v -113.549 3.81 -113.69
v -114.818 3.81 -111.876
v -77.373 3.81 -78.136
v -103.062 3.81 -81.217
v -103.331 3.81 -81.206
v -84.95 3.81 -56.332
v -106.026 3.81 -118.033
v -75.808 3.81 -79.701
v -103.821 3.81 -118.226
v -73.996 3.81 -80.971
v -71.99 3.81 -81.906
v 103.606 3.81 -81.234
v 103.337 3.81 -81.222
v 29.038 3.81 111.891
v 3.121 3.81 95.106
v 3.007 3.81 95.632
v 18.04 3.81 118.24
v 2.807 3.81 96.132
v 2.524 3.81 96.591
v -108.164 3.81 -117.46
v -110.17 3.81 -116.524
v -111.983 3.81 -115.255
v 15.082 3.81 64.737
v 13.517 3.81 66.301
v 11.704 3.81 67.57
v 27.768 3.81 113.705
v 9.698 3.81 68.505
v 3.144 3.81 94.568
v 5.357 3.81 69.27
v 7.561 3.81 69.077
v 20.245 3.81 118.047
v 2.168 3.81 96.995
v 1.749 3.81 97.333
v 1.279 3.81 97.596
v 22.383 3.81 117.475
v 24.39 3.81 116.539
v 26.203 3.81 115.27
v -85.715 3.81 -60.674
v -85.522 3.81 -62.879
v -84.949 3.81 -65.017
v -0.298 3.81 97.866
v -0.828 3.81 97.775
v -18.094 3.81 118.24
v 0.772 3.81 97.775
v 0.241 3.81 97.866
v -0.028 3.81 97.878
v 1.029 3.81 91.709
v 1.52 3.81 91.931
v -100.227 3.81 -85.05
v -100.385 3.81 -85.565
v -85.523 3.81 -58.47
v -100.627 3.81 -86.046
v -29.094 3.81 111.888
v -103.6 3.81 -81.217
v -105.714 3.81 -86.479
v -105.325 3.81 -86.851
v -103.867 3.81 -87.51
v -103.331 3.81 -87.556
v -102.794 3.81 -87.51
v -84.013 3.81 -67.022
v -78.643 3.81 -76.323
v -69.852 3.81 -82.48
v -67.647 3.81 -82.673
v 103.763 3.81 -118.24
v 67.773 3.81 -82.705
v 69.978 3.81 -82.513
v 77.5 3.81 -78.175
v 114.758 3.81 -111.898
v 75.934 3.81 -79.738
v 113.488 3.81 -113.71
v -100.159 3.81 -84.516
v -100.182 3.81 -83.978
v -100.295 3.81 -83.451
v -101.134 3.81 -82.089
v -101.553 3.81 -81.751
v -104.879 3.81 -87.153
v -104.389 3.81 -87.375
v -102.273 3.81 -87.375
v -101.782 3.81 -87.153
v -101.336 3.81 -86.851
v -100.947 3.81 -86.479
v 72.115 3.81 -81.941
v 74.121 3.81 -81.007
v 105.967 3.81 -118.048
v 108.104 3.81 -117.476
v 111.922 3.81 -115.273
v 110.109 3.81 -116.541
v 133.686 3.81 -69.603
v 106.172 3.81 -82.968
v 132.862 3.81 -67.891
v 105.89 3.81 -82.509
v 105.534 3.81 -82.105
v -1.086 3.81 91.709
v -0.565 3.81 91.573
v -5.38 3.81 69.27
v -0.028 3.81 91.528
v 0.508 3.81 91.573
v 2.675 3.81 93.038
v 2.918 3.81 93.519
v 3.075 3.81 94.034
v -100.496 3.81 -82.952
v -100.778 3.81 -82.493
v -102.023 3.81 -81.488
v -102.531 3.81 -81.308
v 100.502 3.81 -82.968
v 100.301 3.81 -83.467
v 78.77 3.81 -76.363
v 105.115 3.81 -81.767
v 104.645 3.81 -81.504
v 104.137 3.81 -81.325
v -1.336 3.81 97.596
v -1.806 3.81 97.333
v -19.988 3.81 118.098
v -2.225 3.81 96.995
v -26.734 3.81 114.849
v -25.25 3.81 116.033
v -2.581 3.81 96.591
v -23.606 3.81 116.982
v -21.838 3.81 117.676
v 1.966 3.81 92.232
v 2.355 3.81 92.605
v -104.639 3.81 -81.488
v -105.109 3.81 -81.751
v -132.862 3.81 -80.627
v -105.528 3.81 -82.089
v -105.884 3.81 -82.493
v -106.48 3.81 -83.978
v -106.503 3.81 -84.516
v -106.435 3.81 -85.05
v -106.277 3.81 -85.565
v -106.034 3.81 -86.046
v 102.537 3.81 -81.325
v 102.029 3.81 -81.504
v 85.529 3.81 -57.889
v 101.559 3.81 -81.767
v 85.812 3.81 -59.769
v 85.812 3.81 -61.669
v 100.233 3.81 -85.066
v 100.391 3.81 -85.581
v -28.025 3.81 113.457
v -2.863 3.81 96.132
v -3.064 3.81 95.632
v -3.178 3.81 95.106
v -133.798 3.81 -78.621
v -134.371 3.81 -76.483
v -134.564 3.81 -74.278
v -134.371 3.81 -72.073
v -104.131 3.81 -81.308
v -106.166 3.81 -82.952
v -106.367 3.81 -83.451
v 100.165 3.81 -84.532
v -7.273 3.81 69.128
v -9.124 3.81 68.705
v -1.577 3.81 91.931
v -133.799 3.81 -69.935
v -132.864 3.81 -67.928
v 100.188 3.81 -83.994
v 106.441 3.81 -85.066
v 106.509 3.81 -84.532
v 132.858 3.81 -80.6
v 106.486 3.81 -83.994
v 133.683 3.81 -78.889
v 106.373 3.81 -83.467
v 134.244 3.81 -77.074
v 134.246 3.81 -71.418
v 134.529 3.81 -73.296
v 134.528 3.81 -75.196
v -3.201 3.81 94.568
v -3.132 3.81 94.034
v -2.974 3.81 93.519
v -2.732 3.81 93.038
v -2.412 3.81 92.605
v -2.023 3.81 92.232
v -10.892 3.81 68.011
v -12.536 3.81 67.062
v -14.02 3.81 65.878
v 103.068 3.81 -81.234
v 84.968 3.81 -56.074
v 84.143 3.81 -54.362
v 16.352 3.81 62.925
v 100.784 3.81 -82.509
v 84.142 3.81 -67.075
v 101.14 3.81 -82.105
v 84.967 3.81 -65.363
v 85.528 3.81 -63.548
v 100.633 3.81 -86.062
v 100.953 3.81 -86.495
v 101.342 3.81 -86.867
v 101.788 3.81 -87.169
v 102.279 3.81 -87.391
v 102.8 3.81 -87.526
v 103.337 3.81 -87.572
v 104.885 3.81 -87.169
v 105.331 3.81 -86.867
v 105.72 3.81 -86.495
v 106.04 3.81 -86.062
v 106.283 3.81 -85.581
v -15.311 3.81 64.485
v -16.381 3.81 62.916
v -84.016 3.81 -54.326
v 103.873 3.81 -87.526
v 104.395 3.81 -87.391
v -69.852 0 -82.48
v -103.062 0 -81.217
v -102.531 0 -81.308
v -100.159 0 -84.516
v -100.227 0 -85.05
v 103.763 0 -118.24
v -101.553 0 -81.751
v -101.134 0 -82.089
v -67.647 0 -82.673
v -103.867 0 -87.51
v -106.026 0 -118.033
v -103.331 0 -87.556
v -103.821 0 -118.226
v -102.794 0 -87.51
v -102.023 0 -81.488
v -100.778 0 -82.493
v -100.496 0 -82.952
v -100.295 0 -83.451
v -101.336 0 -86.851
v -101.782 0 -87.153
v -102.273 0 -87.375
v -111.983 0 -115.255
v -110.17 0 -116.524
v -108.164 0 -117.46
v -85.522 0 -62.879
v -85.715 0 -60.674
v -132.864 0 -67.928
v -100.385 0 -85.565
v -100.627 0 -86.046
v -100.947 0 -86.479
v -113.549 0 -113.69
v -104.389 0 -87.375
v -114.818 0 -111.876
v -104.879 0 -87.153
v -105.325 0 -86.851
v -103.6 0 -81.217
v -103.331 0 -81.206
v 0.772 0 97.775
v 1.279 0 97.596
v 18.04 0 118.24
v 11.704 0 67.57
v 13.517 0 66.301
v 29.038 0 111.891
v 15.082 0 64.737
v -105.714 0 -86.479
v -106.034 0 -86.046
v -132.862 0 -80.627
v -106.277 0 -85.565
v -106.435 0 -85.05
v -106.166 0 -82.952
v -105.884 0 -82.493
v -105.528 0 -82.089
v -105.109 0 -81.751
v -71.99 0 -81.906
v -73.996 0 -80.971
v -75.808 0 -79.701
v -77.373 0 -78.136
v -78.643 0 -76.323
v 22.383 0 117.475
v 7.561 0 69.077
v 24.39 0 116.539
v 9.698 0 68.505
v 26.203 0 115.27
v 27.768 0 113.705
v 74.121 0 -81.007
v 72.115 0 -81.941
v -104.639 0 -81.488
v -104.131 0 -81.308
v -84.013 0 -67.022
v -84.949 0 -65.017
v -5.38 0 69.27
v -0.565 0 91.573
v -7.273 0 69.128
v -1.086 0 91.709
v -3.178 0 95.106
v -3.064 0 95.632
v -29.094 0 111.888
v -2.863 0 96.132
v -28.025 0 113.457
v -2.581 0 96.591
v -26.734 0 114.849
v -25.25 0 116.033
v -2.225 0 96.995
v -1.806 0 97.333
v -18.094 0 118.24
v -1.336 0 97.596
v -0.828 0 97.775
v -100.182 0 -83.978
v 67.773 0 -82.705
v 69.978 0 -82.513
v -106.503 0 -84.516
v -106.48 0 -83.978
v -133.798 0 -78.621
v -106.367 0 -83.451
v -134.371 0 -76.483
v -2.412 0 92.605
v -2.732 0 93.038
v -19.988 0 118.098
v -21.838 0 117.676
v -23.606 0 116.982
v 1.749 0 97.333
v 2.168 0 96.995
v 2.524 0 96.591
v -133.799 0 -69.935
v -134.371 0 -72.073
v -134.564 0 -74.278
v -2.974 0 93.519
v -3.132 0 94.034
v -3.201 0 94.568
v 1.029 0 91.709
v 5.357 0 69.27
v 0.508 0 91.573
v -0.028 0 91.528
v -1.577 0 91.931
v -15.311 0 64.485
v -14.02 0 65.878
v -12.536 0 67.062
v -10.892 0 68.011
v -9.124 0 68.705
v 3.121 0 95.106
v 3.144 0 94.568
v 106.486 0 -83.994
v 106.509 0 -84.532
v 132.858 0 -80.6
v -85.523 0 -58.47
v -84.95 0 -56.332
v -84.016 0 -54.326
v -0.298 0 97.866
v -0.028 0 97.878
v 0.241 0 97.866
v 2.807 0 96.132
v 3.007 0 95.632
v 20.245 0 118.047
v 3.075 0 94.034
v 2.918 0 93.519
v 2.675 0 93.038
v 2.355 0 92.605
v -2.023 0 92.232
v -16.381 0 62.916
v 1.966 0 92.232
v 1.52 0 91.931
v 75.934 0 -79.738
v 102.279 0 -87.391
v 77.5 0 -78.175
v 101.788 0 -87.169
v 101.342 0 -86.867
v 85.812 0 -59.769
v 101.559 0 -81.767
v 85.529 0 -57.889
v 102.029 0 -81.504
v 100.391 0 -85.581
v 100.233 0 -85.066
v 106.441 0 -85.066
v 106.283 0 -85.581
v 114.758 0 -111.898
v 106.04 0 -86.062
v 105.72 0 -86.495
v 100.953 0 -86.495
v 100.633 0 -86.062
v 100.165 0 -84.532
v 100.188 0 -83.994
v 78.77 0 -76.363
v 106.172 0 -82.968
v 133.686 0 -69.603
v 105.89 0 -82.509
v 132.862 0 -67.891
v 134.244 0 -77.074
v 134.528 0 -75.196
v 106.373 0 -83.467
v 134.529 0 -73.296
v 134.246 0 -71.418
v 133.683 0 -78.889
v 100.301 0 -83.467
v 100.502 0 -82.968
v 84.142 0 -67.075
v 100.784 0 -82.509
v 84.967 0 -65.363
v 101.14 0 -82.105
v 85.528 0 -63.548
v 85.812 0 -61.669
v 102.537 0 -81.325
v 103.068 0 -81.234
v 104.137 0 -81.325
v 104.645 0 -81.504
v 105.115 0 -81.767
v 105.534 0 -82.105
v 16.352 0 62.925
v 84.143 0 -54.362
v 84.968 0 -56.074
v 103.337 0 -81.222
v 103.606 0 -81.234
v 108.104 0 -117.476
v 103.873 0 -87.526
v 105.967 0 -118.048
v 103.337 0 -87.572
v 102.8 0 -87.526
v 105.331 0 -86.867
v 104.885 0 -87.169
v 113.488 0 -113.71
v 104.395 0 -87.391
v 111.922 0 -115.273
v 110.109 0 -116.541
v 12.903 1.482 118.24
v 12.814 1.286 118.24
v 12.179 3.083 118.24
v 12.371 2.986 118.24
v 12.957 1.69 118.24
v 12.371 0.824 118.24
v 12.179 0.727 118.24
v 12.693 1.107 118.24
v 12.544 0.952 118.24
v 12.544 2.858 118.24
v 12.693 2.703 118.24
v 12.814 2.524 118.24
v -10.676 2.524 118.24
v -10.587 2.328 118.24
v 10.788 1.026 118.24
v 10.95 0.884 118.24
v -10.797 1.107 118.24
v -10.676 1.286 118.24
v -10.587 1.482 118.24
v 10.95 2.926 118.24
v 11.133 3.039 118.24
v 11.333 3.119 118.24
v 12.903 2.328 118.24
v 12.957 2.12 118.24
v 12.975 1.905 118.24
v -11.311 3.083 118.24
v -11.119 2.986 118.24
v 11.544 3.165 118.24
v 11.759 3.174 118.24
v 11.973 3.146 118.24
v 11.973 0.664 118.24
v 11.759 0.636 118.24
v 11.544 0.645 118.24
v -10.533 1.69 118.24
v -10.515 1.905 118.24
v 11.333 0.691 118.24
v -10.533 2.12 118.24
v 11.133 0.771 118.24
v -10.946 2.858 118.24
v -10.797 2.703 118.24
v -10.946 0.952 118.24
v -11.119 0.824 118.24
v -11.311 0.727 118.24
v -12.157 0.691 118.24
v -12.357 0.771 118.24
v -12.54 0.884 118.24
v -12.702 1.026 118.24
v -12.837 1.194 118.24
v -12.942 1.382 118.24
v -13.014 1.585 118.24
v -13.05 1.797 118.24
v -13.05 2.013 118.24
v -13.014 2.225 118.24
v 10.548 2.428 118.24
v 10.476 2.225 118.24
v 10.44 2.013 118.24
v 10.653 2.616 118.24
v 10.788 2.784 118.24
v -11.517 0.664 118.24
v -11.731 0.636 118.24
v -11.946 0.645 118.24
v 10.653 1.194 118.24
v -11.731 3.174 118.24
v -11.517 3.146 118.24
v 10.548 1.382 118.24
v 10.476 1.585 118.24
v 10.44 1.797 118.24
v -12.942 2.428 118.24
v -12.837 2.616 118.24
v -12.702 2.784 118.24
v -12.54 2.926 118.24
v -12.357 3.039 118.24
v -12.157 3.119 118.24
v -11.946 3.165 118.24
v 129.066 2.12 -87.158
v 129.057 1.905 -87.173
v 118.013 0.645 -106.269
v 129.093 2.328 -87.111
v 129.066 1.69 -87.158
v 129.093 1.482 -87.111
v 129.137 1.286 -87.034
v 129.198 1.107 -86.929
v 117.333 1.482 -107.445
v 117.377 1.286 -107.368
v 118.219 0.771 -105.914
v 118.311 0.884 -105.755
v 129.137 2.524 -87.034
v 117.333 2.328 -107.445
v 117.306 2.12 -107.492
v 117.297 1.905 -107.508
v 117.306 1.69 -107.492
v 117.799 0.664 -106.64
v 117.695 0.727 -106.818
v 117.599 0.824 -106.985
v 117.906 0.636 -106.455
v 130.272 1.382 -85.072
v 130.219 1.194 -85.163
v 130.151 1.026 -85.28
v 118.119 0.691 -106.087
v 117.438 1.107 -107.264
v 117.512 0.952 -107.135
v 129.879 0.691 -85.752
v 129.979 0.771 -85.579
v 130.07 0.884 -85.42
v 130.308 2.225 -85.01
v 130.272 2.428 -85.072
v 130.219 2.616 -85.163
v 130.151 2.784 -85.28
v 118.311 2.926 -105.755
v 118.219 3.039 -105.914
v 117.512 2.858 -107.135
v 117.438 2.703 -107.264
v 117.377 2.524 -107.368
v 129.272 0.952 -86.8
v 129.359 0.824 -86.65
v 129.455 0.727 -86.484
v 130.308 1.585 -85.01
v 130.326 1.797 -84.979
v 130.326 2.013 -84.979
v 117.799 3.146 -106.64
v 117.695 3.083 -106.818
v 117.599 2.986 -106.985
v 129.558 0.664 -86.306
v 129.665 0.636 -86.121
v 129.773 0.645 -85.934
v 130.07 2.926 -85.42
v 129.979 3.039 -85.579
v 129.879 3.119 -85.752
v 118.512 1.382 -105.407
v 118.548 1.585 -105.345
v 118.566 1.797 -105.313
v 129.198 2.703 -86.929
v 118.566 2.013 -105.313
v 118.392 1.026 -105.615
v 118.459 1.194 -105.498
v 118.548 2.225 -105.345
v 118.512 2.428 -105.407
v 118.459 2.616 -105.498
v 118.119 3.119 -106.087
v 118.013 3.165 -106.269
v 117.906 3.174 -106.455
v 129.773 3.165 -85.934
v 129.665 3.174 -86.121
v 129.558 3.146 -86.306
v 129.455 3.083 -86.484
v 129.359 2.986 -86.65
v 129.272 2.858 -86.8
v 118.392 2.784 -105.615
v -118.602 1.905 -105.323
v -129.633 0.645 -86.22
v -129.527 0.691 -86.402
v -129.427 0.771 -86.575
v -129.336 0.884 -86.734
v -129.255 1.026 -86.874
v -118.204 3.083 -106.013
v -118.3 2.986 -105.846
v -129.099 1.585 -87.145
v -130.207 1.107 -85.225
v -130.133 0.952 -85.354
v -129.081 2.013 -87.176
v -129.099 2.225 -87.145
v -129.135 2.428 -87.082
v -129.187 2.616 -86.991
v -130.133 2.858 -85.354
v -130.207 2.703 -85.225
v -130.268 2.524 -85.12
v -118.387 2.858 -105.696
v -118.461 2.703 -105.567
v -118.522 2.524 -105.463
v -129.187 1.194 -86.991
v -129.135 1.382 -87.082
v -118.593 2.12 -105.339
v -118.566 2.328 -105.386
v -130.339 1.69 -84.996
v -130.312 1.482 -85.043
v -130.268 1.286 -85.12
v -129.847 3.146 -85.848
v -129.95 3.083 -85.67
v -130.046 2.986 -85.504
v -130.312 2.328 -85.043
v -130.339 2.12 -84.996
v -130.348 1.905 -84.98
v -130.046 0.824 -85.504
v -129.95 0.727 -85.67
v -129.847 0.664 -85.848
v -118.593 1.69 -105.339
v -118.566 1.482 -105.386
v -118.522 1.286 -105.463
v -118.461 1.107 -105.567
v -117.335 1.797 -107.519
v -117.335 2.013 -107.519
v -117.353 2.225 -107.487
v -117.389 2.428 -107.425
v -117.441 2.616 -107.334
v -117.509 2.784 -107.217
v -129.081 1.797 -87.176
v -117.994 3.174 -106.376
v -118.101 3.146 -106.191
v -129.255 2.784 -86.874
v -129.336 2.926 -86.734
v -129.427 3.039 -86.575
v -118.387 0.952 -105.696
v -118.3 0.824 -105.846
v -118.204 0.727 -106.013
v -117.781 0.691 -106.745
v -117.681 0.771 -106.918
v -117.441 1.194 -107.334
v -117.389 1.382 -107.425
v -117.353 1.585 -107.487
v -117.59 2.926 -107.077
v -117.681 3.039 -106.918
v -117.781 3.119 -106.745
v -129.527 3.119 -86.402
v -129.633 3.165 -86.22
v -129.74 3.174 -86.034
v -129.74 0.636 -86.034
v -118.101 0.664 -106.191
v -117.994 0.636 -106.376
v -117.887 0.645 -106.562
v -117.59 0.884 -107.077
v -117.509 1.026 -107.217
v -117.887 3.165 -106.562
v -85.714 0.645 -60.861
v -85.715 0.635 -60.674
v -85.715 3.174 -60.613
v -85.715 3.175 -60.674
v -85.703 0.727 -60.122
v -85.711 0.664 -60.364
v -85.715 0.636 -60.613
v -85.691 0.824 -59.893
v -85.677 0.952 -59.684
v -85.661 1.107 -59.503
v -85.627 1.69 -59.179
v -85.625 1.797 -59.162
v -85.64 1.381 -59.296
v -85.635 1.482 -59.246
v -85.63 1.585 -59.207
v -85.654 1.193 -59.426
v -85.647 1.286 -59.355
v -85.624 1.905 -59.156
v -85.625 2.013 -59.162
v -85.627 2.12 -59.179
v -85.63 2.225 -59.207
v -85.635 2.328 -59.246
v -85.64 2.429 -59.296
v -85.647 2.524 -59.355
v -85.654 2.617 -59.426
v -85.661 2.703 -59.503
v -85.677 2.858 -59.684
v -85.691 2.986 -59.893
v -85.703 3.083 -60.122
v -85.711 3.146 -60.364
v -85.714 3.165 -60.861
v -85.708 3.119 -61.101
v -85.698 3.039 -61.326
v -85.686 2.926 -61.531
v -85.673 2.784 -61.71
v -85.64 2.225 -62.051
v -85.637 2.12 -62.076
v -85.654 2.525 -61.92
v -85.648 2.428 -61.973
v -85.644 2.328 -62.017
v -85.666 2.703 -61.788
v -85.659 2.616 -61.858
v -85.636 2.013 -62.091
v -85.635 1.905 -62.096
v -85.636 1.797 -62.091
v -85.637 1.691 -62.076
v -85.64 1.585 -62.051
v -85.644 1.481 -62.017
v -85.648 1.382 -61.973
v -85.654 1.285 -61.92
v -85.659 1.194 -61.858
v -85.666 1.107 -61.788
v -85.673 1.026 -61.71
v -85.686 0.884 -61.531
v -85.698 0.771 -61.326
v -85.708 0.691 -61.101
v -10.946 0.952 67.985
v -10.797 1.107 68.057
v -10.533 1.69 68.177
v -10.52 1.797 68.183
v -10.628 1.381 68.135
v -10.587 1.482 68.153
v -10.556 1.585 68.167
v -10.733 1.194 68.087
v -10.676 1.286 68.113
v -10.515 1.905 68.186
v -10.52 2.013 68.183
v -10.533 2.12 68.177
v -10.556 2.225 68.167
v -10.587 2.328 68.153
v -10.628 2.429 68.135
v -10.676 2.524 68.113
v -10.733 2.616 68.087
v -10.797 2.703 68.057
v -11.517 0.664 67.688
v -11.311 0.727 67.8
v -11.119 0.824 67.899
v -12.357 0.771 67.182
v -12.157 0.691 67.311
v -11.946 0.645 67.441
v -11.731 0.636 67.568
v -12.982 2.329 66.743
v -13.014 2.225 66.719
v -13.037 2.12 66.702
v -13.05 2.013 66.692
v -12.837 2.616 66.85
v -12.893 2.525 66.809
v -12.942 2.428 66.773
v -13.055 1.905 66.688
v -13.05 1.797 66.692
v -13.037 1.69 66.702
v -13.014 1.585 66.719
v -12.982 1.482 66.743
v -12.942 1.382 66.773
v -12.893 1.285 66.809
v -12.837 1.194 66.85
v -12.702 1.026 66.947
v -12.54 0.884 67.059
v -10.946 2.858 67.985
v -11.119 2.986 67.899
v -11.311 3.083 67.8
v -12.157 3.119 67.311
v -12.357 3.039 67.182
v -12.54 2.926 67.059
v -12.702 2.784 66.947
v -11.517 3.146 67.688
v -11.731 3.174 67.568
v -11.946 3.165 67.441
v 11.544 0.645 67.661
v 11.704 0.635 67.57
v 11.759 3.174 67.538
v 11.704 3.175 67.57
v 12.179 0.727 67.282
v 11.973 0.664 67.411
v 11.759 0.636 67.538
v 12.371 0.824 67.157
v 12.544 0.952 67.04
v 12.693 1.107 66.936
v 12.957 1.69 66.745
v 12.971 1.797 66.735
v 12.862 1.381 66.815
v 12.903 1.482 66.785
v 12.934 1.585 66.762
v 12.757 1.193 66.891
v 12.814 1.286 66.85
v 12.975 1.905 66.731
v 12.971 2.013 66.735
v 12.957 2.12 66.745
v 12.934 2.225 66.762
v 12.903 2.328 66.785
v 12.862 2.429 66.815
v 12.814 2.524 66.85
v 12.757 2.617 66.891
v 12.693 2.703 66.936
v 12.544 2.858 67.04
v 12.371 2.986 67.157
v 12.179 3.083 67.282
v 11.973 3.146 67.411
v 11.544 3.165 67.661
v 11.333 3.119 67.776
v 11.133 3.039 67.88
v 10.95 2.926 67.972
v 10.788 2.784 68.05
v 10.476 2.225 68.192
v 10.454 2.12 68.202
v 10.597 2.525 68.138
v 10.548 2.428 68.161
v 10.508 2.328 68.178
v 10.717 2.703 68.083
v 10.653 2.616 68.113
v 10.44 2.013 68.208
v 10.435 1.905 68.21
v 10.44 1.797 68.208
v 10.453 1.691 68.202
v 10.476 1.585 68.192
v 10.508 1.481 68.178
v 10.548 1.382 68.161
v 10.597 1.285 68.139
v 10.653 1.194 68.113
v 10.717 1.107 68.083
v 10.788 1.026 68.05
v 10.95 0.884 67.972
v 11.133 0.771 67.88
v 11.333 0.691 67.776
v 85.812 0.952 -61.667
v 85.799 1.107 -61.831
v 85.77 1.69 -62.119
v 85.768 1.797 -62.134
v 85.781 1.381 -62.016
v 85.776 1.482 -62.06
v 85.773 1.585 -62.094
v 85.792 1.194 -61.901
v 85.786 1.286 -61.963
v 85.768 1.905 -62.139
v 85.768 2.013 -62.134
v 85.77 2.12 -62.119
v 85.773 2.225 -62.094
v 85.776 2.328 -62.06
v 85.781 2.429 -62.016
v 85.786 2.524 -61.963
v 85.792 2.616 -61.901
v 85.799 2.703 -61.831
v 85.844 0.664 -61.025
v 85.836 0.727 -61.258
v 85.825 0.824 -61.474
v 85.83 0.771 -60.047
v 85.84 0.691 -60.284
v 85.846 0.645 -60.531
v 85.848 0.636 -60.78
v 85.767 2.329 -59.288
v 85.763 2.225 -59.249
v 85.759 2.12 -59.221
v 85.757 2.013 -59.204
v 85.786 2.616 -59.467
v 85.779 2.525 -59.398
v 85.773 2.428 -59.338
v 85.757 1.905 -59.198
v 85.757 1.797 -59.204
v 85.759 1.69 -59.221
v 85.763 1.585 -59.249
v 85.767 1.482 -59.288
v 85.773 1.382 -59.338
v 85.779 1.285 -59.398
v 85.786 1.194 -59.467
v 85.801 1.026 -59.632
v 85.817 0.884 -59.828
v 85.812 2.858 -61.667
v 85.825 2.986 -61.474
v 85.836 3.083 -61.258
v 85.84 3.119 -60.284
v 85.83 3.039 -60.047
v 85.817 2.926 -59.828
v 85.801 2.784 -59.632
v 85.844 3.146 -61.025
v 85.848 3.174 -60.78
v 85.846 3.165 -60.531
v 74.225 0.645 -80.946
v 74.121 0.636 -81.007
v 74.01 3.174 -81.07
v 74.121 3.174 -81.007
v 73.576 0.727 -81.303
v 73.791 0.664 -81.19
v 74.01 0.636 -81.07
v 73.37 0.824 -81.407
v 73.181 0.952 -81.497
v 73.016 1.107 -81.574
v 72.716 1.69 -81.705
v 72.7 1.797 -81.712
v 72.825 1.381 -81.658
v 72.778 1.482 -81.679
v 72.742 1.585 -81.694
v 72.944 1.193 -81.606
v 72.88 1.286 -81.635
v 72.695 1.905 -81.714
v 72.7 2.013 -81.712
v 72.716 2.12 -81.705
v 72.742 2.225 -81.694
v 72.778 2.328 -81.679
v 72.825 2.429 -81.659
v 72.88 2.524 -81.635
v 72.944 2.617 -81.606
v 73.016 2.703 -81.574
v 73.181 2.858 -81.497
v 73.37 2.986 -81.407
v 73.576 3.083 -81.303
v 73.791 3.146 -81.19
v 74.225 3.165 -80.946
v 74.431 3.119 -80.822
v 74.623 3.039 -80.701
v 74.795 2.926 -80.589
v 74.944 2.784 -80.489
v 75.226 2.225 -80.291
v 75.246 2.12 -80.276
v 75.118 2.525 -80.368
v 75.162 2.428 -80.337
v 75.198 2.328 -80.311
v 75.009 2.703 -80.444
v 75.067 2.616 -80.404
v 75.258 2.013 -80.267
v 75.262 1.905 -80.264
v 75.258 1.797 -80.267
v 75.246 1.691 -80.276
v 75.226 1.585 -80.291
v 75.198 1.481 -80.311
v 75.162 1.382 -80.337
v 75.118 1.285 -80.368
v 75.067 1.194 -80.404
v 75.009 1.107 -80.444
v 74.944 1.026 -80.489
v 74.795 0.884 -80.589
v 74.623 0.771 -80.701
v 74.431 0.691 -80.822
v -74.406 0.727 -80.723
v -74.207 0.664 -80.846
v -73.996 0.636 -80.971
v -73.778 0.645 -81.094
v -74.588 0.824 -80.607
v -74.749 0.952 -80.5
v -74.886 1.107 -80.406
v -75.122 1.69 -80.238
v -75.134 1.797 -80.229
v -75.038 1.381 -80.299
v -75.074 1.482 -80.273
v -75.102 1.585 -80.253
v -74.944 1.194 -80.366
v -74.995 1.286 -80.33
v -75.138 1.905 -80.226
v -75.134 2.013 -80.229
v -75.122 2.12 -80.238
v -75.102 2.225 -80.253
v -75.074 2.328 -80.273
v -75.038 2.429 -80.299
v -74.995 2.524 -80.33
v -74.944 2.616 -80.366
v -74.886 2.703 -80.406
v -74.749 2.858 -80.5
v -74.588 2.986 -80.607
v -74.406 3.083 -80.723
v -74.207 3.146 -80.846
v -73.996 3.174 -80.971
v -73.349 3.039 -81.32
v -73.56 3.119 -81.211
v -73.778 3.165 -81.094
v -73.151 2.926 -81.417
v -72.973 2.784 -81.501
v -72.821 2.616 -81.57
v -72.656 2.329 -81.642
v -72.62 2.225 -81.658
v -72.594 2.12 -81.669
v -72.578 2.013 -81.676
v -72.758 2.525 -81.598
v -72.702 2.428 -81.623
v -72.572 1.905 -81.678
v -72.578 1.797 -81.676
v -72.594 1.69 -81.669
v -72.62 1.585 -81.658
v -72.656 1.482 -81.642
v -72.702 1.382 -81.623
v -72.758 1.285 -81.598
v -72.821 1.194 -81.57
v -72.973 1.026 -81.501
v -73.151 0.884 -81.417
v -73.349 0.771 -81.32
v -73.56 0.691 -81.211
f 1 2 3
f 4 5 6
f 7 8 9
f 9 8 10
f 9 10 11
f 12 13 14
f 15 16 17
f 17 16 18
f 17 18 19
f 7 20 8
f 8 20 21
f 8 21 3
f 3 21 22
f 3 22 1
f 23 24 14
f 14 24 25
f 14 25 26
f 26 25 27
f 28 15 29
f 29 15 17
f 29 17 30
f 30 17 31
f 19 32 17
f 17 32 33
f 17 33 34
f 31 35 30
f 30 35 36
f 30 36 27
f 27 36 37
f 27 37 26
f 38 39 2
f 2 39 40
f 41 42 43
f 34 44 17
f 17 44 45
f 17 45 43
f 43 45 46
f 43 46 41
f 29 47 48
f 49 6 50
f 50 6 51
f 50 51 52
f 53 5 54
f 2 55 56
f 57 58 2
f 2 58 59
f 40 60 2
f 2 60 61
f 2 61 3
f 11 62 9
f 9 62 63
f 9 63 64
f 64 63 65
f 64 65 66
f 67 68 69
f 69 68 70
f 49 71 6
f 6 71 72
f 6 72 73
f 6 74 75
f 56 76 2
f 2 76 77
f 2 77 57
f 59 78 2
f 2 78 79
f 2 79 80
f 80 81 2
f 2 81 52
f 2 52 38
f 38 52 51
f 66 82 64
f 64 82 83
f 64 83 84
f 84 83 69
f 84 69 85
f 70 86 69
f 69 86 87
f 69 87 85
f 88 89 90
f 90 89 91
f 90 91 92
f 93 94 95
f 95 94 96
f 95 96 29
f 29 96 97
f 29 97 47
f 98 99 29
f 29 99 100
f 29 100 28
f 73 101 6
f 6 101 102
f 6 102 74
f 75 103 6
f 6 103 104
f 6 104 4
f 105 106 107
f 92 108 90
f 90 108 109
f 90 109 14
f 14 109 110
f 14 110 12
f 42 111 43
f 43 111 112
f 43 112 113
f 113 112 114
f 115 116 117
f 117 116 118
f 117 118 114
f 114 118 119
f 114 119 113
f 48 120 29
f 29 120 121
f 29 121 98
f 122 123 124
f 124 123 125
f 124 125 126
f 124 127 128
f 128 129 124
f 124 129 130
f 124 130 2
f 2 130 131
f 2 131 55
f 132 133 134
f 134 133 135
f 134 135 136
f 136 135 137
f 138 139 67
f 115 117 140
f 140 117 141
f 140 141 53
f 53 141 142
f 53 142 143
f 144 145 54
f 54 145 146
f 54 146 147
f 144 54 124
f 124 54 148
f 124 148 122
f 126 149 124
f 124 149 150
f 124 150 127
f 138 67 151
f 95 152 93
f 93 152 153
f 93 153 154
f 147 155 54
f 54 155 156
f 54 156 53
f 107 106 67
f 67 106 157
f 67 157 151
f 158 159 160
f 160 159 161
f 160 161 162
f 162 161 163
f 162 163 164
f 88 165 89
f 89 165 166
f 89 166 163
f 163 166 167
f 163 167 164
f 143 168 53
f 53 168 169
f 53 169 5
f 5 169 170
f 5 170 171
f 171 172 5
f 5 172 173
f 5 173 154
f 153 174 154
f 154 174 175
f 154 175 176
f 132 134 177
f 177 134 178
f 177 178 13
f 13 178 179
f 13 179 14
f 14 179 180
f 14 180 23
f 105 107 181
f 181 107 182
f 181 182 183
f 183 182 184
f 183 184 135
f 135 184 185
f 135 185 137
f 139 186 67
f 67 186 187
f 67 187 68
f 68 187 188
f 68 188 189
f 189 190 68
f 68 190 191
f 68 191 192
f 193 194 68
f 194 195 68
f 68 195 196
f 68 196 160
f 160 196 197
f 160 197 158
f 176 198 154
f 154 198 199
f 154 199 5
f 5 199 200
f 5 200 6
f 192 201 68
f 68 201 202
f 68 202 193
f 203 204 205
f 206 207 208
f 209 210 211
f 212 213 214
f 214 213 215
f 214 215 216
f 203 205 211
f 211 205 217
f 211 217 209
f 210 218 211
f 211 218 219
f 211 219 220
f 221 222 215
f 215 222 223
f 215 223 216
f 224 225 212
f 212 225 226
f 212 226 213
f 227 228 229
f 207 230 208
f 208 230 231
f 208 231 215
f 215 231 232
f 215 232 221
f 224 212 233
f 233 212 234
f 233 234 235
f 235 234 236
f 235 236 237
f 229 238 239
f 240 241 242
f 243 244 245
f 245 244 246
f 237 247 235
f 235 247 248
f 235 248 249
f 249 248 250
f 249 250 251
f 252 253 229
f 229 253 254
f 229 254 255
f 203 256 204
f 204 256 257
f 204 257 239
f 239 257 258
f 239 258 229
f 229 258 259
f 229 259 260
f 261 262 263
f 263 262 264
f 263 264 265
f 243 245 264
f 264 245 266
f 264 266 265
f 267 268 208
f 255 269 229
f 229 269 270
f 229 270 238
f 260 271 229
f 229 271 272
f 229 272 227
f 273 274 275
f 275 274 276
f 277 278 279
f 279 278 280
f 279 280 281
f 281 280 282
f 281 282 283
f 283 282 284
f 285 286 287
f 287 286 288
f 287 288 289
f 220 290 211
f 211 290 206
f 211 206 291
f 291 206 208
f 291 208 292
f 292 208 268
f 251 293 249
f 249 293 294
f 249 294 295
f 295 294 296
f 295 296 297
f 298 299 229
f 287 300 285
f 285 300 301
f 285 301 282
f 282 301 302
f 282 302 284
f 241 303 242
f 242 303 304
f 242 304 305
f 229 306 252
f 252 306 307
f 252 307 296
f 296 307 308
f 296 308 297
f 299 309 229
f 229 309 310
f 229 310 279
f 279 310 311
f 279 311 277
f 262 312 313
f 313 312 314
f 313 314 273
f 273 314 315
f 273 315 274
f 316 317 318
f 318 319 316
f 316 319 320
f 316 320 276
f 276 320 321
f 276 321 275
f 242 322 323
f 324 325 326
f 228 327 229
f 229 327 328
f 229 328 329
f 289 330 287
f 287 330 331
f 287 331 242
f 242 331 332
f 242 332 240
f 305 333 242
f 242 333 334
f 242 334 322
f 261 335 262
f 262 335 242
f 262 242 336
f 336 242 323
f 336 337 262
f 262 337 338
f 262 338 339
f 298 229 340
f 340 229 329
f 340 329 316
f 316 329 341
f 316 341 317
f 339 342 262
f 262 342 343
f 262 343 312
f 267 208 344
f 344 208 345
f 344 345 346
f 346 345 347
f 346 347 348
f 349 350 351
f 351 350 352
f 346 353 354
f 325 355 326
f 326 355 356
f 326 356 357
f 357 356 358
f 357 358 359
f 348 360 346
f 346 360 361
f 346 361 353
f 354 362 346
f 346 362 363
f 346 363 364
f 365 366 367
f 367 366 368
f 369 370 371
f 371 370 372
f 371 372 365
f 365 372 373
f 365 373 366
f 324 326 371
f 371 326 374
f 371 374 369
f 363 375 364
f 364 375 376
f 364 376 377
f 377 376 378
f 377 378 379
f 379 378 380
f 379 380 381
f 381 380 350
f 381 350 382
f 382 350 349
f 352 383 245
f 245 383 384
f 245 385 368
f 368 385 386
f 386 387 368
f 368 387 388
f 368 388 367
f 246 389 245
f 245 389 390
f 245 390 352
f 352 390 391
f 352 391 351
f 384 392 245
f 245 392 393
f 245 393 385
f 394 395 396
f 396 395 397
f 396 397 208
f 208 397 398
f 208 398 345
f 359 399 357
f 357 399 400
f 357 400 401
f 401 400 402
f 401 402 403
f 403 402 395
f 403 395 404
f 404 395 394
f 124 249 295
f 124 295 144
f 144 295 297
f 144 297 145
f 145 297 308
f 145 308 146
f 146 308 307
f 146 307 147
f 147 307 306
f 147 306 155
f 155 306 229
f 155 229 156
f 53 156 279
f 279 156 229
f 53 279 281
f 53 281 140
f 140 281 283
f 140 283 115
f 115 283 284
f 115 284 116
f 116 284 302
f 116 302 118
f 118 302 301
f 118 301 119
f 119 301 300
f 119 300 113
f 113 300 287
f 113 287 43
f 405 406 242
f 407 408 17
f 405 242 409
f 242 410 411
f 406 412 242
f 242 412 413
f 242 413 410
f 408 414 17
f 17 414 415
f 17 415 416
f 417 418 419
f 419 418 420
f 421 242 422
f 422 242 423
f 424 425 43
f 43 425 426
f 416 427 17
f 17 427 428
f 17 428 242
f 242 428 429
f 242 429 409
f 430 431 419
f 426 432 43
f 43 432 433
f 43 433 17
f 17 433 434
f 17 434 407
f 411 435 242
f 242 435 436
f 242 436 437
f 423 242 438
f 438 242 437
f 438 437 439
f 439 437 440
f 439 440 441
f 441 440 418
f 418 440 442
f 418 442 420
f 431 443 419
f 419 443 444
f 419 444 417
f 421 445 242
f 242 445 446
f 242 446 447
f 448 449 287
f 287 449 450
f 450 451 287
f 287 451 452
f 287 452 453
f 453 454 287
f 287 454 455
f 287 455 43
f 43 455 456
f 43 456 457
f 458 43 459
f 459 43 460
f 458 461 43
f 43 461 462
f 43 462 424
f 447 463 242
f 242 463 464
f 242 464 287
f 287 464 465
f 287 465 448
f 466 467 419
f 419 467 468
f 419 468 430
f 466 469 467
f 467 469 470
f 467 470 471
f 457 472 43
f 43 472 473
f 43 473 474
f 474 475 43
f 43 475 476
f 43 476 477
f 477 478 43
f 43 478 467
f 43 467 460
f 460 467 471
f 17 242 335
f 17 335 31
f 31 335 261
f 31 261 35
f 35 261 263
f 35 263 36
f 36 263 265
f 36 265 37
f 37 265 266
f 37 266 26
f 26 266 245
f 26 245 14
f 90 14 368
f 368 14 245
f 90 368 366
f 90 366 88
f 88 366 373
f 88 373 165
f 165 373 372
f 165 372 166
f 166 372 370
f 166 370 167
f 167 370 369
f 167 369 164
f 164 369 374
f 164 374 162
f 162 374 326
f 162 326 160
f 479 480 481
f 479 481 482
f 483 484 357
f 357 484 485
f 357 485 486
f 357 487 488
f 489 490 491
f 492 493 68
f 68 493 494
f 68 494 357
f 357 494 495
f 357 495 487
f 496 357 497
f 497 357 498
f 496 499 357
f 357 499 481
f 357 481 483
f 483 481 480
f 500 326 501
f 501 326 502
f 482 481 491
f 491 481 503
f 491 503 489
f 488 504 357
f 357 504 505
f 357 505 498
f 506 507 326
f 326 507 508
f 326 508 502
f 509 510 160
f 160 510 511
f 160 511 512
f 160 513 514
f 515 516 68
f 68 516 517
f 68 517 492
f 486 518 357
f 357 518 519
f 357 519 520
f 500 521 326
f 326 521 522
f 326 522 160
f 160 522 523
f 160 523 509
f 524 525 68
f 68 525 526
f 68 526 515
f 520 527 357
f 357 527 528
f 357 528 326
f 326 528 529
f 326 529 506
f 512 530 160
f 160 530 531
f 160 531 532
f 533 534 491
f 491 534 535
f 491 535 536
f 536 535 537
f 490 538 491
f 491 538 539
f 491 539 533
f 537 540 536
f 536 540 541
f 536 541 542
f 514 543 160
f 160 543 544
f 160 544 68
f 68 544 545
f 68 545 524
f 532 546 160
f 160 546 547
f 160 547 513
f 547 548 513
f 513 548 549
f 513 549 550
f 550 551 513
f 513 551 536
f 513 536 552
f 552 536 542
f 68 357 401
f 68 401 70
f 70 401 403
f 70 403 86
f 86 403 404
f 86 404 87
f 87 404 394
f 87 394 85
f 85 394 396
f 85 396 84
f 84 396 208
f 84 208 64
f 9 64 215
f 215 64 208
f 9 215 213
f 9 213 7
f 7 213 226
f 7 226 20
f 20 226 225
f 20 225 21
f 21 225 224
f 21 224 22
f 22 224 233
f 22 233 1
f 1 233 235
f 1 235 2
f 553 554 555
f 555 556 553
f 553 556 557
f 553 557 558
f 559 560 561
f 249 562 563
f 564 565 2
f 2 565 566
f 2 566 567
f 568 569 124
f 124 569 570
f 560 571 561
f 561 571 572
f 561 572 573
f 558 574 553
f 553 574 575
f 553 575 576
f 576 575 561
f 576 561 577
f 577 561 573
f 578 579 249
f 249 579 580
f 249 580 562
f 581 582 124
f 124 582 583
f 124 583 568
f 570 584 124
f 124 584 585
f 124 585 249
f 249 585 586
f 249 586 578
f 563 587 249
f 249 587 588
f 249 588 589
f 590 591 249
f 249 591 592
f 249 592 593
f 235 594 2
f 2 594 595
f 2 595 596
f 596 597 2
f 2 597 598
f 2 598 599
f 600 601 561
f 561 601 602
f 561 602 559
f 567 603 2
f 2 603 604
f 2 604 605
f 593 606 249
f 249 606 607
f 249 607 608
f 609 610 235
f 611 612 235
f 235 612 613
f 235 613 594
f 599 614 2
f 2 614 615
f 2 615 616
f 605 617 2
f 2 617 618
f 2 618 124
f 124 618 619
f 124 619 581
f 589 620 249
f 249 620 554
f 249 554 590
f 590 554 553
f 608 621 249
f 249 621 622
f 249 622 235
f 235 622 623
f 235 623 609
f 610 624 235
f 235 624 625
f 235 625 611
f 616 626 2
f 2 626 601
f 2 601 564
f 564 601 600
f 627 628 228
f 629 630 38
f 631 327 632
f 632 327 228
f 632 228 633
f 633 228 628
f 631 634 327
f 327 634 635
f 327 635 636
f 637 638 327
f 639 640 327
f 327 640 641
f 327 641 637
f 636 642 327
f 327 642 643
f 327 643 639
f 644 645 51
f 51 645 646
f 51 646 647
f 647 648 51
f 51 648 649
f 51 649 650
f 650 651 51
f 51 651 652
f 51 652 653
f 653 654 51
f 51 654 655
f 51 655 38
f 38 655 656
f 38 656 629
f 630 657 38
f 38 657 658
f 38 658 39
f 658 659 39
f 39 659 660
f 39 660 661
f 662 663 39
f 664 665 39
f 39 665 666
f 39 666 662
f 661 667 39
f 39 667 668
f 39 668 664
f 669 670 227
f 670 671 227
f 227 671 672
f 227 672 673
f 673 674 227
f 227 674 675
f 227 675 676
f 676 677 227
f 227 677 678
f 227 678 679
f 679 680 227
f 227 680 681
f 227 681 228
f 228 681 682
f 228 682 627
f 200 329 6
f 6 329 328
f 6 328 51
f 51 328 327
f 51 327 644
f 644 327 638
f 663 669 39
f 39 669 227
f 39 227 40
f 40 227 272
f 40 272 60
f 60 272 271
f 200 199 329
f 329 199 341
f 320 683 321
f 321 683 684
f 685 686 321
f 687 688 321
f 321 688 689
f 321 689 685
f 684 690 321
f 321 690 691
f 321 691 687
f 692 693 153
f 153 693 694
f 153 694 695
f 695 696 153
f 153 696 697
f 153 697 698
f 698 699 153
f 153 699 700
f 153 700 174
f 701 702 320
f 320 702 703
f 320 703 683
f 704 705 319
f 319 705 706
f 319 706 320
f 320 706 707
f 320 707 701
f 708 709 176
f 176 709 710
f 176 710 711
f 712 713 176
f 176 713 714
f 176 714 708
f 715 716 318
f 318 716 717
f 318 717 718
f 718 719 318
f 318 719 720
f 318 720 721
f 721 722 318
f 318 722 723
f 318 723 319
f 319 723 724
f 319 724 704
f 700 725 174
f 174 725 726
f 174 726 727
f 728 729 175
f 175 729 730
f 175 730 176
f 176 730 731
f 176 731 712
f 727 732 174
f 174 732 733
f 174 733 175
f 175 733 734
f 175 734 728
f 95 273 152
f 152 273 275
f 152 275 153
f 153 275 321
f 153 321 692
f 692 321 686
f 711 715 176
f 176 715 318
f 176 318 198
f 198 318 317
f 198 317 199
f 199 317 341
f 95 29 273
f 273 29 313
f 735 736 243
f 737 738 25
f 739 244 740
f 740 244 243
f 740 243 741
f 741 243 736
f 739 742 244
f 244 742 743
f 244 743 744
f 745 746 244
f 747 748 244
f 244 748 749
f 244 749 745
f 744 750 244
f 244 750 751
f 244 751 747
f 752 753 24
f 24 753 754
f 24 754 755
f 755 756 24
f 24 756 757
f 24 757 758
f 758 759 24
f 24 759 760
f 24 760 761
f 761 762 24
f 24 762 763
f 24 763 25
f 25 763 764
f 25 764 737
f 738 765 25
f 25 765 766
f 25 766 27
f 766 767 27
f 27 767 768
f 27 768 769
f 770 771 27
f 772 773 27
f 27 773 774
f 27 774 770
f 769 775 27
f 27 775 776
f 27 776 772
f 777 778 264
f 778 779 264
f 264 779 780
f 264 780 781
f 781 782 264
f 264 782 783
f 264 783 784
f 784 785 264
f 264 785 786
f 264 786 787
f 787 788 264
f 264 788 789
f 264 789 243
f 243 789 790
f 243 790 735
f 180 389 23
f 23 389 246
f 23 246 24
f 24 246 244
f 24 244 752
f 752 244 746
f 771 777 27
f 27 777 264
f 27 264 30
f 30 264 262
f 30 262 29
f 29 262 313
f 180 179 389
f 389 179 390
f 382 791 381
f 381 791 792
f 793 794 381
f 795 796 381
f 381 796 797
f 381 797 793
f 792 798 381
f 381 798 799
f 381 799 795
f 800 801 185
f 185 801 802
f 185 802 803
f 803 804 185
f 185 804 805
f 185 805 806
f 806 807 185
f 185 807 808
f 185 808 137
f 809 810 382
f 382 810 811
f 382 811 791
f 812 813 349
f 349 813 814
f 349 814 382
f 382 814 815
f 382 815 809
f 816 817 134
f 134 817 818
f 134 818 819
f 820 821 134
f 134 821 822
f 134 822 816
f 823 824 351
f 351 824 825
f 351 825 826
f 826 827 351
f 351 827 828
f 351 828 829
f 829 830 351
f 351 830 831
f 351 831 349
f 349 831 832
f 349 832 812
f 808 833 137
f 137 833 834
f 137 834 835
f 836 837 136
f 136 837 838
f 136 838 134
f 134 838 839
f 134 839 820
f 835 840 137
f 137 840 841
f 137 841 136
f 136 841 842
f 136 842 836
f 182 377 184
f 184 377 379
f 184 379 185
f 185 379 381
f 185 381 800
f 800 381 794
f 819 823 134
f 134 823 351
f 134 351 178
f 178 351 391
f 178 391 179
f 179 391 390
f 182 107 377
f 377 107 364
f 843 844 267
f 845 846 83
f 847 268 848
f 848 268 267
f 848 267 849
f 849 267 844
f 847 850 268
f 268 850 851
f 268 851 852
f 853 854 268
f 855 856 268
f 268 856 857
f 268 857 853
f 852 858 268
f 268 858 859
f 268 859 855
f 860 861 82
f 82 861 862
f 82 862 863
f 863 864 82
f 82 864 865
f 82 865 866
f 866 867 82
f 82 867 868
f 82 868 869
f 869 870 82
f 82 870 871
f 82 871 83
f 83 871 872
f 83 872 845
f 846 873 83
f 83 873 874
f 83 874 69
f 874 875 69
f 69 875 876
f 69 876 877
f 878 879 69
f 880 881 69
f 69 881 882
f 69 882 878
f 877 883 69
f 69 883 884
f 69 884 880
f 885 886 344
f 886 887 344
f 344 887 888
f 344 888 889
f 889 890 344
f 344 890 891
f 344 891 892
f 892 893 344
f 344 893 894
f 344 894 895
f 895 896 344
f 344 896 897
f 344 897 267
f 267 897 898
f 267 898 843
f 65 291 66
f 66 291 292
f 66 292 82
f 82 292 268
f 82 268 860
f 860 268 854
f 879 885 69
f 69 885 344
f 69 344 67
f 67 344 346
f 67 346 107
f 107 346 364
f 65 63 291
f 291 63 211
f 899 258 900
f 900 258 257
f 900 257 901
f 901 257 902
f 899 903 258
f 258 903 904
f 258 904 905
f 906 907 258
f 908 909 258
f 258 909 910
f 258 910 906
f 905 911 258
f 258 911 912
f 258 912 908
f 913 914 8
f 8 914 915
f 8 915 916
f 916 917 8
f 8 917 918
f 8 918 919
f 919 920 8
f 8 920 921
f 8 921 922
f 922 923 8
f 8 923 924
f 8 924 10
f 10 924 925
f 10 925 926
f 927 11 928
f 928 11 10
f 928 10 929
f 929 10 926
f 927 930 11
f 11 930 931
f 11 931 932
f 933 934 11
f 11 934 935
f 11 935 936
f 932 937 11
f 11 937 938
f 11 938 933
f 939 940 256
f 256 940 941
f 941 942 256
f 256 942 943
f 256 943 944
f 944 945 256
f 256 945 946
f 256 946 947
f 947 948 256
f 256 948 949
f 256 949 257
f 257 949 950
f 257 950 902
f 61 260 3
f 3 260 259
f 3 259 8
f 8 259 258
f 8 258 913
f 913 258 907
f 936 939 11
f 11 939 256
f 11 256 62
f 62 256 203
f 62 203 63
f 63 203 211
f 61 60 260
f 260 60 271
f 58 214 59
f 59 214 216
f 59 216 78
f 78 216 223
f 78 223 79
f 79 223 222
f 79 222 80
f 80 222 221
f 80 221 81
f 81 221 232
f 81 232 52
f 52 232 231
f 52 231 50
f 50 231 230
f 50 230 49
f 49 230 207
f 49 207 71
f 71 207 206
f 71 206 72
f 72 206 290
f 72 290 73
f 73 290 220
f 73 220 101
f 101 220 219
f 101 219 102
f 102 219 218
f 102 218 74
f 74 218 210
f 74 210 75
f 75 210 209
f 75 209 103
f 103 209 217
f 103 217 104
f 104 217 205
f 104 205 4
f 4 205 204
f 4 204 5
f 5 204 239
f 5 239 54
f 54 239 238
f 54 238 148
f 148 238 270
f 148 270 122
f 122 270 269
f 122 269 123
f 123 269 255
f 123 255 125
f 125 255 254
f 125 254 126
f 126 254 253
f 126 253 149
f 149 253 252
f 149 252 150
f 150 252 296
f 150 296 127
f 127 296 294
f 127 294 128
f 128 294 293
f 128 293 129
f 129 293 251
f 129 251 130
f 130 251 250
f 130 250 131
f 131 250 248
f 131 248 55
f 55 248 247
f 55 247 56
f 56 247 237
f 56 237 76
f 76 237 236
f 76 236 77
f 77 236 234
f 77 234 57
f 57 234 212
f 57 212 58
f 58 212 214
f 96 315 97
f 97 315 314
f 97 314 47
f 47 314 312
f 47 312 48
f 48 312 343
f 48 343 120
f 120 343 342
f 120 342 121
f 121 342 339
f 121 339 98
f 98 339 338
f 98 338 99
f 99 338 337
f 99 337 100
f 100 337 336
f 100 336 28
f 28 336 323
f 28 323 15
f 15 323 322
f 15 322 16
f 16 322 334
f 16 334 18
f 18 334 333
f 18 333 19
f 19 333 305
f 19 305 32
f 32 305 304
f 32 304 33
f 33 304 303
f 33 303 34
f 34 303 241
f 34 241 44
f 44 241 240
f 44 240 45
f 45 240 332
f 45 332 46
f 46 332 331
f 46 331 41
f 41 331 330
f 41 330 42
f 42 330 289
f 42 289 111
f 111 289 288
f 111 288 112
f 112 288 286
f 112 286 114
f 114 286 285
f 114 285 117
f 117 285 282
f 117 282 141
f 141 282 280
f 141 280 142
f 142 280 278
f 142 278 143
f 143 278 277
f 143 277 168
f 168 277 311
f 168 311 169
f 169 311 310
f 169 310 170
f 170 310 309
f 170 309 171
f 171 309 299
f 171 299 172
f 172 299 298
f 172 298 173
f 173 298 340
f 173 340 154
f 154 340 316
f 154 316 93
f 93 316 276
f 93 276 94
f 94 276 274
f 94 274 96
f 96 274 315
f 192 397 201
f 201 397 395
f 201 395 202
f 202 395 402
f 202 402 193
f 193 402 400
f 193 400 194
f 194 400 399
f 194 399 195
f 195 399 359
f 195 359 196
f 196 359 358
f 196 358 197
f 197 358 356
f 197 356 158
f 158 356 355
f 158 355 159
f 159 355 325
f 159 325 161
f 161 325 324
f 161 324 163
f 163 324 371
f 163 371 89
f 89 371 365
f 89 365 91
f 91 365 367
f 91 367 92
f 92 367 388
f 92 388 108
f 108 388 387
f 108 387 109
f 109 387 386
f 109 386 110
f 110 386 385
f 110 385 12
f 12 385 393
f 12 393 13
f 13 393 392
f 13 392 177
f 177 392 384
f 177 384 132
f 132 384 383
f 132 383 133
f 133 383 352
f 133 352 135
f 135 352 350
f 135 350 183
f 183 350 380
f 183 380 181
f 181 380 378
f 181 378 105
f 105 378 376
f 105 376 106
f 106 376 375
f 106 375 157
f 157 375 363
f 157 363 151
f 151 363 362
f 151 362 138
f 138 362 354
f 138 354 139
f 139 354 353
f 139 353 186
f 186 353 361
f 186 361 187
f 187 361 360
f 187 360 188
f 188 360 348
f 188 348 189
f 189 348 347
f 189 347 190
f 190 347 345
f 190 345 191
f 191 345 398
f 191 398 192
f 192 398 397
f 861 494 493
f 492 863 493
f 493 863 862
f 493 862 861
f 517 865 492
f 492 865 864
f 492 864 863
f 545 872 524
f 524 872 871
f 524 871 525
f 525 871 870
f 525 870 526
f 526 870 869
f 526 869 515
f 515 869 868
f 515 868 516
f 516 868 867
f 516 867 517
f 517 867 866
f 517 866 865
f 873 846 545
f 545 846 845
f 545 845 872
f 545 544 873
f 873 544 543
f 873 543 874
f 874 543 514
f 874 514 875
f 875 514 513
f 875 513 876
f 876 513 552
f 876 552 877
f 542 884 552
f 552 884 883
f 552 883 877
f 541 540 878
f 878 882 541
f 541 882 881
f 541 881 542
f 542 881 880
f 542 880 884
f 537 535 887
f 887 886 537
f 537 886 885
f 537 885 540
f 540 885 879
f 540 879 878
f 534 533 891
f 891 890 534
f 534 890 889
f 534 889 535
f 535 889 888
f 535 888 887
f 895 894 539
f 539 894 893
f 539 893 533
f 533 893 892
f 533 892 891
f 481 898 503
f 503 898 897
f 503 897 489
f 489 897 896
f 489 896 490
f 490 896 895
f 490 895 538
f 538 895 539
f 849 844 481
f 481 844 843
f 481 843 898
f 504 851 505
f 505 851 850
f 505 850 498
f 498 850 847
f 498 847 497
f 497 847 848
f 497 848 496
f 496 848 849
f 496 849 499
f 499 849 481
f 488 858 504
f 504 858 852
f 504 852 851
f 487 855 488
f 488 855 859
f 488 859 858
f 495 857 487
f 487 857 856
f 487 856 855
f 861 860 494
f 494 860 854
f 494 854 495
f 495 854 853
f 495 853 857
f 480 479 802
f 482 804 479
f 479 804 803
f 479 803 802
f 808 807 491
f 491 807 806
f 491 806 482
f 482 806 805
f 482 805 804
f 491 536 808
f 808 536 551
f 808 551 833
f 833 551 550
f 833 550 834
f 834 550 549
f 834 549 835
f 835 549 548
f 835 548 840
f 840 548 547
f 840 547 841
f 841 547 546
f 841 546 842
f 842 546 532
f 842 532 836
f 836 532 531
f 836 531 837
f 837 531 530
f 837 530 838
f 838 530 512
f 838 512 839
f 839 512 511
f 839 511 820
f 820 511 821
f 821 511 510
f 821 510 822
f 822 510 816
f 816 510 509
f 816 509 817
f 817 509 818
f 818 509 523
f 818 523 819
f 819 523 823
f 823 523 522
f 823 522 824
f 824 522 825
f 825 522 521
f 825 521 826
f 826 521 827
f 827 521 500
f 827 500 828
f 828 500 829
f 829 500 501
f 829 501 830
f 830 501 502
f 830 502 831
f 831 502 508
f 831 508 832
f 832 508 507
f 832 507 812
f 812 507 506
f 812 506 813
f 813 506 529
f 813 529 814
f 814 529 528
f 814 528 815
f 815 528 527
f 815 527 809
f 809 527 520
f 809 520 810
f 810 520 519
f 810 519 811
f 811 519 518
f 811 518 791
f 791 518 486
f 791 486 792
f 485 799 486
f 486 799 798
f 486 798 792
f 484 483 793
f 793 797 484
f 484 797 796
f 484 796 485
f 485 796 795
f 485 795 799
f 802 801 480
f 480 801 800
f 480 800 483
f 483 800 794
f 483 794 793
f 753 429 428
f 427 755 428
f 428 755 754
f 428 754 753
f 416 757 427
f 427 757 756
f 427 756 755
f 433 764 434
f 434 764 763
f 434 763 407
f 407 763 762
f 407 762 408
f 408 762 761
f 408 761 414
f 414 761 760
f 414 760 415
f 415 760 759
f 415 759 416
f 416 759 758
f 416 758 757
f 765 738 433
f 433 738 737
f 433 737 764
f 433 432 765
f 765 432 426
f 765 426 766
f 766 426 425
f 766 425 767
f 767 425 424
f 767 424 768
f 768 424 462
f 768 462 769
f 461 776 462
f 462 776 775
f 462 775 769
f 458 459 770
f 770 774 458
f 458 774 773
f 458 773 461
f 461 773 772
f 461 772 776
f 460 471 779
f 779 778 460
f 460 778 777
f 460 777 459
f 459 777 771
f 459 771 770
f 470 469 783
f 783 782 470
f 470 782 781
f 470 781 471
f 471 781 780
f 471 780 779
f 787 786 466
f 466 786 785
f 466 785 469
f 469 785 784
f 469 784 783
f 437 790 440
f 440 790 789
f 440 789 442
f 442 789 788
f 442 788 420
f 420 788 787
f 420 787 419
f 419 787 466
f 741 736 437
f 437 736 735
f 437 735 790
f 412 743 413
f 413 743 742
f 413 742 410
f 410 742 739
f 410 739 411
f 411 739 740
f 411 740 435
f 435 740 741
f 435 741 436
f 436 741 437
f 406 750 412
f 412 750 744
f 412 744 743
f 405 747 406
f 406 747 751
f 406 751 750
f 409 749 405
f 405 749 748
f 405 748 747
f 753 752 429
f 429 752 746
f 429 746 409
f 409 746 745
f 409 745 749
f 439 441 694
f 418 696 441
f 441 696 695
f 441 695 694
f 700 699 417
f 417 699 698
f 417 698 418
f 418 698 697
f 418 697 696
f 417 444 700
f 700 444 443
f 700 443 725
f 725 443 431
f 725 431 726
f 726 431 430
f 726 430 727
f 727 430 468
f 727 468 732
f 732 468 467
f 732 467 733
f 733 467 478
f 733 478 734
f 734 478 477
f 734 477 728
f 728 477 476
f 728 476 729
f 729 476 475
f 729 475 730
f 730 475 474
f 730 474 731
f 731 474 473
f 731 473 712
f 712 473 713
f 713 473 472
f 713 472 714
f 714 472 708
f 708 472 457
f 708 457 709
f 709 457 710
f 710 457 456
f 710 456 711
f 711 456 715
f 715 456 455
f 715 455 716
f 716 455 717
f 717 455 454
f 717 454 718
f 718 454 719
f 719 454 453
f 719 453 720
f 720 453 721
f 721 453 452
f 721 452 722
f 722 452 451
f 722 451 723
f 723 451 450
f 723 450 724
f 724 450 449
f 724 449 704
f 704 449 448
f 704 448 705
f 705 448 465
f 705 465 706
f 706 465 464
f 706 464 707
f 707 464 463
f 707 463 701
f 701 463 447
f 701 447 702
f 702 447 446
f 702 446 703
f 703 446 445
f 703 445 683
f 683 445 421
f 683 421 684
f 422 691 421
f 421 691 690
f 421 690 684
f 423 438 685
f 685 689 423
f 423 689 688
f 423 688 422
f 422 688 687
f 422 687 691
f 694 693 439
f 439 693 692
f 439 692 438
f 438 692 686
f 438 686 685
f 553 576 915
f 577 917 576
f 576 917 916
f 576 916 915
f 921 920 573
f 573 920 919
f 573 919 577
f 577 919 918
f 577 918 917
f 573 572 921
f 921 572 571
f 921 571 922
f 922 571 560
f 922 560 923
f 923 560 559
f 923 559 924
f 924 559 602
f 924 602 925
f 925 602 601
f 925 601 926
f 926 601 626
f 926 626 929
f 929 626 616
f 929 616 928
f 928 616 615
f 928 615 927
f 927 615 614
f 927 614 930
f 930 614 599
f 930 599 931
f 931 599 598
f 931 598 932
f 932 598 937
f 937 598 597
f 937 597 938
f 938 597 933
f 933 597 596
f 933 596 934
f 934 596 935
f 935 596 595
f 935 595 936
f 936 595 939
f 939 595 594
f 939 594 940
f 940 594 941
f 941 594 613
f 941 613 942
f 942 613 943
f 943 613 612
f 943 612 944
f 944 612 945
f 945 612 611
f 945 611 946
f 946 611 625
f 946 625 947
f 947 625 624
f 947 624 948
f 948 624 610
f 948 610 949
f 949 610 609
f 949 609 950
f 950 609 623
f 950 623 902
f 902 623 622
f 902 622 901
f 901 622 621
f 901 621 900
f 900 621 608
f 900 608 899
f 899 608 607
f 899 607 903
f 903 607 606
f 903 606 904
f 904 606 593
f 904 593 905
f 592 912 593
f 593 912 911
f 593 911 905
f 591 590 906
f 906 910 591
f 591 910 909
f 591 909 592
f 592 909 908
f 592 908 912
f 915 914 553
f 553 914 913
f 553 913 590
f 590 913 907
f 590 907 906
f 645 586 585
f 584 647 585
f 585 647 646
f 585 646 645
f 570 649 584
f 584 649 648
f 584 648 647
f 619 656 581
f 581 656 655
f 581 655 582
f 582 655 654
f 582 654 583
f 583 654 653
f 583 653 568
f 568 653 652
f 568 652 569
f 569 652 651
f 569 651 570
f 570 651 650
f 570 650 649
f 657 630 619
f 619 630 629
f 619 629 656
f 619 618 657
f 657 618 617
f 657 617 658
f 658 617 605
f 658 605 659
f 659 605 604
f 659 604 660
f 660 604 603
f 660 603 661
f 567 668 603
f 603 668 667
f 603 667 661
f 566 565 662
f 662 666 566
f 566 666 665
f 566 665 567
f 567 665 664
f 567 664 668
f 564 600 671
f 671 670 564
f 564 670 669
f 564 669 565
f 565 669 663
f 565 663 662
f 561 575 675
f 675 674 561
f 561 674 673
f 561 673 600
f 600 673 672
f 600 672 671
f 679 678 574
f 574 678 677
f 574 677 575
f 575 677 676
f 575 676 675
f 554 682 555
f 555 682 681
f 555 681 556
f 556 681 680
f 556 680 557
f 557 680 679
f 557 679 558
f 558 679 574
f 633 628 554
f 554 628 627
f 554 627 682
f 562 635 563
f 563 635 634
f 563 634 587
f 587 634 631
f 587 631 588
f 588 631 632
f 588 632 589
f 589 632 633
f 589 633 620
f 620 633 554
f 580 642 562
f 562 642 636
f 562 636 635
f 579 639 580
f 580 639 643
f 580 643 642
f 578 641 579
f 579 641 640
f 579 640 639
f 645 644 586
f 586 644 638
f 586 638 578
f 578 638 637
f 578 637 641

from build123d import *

# Parameters (mm, degrees)
SKETCH1_R           = 3.175
BOSS_EXTRUDE1_DEPTH = 3.81
CUT_EXTRUDE1_REACH  = 334.908
SKETCH3_R           = 1.27
CUT_EXTRUDE2_REACH  = 274.112
SKETCH5_R           = 1.27
CUT_EXTRUDE3_REACH  = 334.911
SKETCH6_R           = 1.27


with BuildPart() as part:
    # Sketch1 → Boss-Extrude1 (new body)
    with BuildSketch(Plane(origin=(0, 0, 0), x_dir=(1, 0, 0), z_dir=(0, 1, 0))):
        with BuildLine():
            Line((-132.862230357, 80.626602679), (-114.818360917, 111.876376892))
            ThreePointArc((-114.818360917, 111.876376892), (-110.170255519, 116.524341207), (-103.82099168, 118.225900714))
            Line((-103.82099168, 118.225900714), (103.762977343, 118.240259528))
            ThreePointArc((103.762977343, 118.240259528), (110.109496385, 116.541297953), (114.757781541, 111.898214981))
            Line((114.757781541, 111.898214981), (132.857908371, 80.600189632))
            ThreePointArc((132.857908371, 80.600189632), (134.563982049, 74.246129937), (132.86180691, 67.891024761))
            Line((132.86180691, 67.891024761), (29.0379736, -111.891469007))
            ThreePointArc((29.0379736, -111.891469007), (24.389544583, -116.539131318), (18.040149336, -118.240259558))
            Line((18.040149336, -118.240259558), (-18.094408415, -118.240259558))
            ThreePointArc((-18.094408415, -118.240259558), (-24.445497205, -116.538153501), (-29.09418809, -111.888081791))
            Line((-29.09418809, -111.888081791), (-132.863762321, 67.928304298))
            ThreePointArc((-132.863762321, 67.928304298), (-134.563982554, 74.277658701), (-132.862230357, 80.626602679))
        make_face()
        with Locations(Location((-103.330851621, 84.381028983, 0), (0, 0, 90))):
            Circle(SKETCH1_R, mode=Mode.SUBTRACT)
        with Locations(Location((-0.028433279, -94.702561062, 0), (0, 0, 90))):
            Circle(SKETCH1_R, mode=Mode.SUBTRACT)
        with Locations(Location((103.336854698, 84.397127461, 0), (0, 0, 90))):
            Circle(SKETCH1_R, mode=Mode.SUBTRACT)
        with BuildLine():
            Line((-84.013266269, 67.022348434), (-78.642736989, 76.323448067))
            ThreePointArc((-78.642736989, 76.323448067), (-73.995553024, 80.970880326), (-67.647495776, 82.672971564))
            Line((-67.647495776, 82.672971564), (67.773359352, 82.705030032))
            ThreePointArc((67.773359352, 82.705030032), (74.121084724, 81.006600385), (78.770291575, 76.36298581))
            Line((78.770291575, 76.36298581), (84.141622987, 67.075091406))
            ThreePointArc((84.141622987, 67.075091406), (85.847697169, 60.718674744), (84.143163353, 54.361844845))
            Line((84.143163353, 54.361844845), (16.352129804, -62.925309178))
            ThreePointArc((16.352129804, -62.925309178), (11.704017593, -67.570067982), (5.356663713, -69.27001804))
            Line((5.356663713, -69.27001804), (-5.379766134, -69.27001804))
            ThreePointArc((-5.379766134, -69.27001804), (-11.731679612, -67.567435699), (-16.380497701, -62.916190507))
            Line((-16.380497701, -62.916190507), (-84.015750126, 54.325699819))
            ThreePointArc((-84.015750126, 54.325699819), (-85.715018316, 60.674356799), (-84.013266269, 67.022348434))
        make_face(mode=Mode.SUBTRACT)
    extrude(amount=BOSS_EXTRUDE1_DEPTH)

    # Sketch3 → Cut-Extrude1 (cut, up to next)
    with BuildSketch(Plane(origin=(134.490180652, 0, -77.777728789), x_dir=(-0.5006264112230908, 0, -0.8656634429071663), z_dir=(0.8656634429071663, 0, -0.5006264112230908)), mode=Mode.PRIVATE) as cut_extrude1_sk1:
        with Locations((9.583713099, 1.905)):
            Circle(SKETCH3_R)
    cut_extrude1_tool1 = extrude(cut_extrude1_sk1.sketch, amount=-CUT_EXTRUDE1_REACH, mode=Mode.PRIVATE) & part.part
    # Sketch3 → Cut-Extrude1 (cut, up to next)
    with BuildSketch(Plane(origin=(134.490180652, 0, -77.777728789), x_dir=(-0.5006264112230908, 0, -0.8656634429071663), z_dir=(0.8656634429071663, 0, -0.5006264112230908)), mode=Mode.PRIVATE) as cut_extrude1_sk2:
        with Locations((33.073860572, 1.905)):
            Circle(SKETCH3_R)
    cut_extrude1_tool2 = extrude(cut_extrude1_sk2.sketch, amount=-CUT_EXTRUDE1_REACH, mode=Mode.PRIVATE) & part.part
    add(cut_extrude1_tool1.solids().sort_by_distance((129.692321, 1.905, -86.073999))[0], mode=Mode.SUBTRACT)
    add(cut_extrude1_tool2.solids().sort_by_distance((117.932533, 1.905, -106.408561))[0], mode=Mode.SUBTRACT)

    # Sketch5 → Cut-Extrude2 (cut, up to next)
    with BuildSketch(Plane.XY.offset(118.240259558), mode=Mode.PRIVATE) as cut_extrude2_sk1:
        with Locations((-11.784935705, 1.905)):
            Circle(SKETCH5_R)
    cut_extrude2_tool1 = extrude(cut_extrude2_sk1.sketch, amount=-CUT_EXTRUDE2_REACH, mode=Mode.PRIVATE) & part.part
    # Sketch5 → Cut-Extrude2 (cut, up to next)
    with BuildSketch(Plane.XY.offset(118.240259558), mode=Mode.PRIVATE) as cut_extrude2_sk2:
        with Locations((11.705218914, 1.905)):
            Circle(SKETCH5_R)
    cut_extrude2_tool2 = extrude(cut_extrude2_sk2.sketch, amount=-CUT_EXTRUDE2_REACH, mode=Mode.PRIVATE) & part.part
    add(cut_extrude2_tool1.solids().sort_by_distance((-11.784936, 1.905, 118.24026))[0], mode=Mode.SUBTRACT)
    add(cut_extrude2_tool2.solids().sort_by_distance((11.705219, 1.905, 118.24026))[0], mode=Mode.SUBTRACT)

    # Sketch6 → Cut-Extrude3 (cut, up to next)
    with BuildSketch(Plane(origin=(-134.555779523, 0, -77.693582727), x_dir=(-0.500037491916206, 0, 0.8660037567344326), z_dir=(-0.8660037567344328, 0, -0.500037491916206)), mode=Mode.PRIVATE) as cut_extrude3_sk1:
        with Locations((-33.174438242, 1.905)):
            Circle(SKETCH6_R)
    cut_extrude3_tool1 = extrude(cut_extrude3_sk1.sketch, amount=-CUT_EXTRUDE3_REACH, mode=Mode.PRIVATE) & part.part
    # Sketch6 → Cut-Extrude3 (cut, up to next)
    with BuildSketch(Plane(origin=(-134.555779523, 0, -77.693582727), x_dir=(-0.500037491916206, 0, 0.8660037567344326), z_dir=(-0.8660037567344328, 0, -0.500037491916206)), mode=Mode.PRIVATE) as cut_extrude3_sk2:
        with Locations((-9.684283586, 1.905)):
            Circle(SKETCH6_R)
    cut_extrude3_tool2 = extrude(cut_extrude3_sk2.sketch, amount=-CUT_EXTRUDE3_REACH, mode=Mode.PRIVATE) & part.part
    add(cut_extrude3_tool1.solids().sort_by_distance((-117.967317, 1.905, -106.422771))[0], mode=Mode.SUBTRACT)
    add(cut_extrude3_tool2.solids().sort_by_distance((-129.713275, 1.905, -86.080209))[0], mode=Mode.SUBTRACT)


solid = part.part
